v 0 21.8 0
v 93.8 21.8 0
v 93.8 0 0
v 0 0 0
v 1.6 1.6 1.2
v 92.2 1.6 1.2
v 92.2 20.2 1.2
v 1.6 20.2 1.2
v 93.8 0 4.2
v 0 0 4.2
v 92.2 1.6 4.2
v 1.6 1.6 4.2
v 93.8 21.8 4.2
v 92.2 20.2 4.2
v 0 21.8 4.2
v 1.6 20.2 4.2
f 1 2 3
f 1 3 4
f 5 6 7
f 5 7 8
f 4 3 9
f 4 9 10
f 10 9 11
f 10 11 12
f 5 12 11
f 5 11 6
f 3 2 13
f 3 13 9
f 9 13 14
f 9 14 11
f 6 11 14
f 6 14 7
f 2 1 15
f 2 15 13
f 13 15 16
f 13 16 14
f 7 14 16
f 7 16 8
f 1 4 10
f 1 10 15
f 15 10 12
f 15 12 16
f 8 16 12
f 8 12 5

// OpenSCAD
// Temporary face-down soldering alignment tray; dimensions in millimetres.
// Seven LED modules sit in one uninterrupted pocket, with their pins upward.
pocket_length = 90.6;
pocket_width = 18.6;
floor_thickness = 1.2;
wall_thickness = 1.6;
wall_height = 3.0; // Height ABOVE the floor.

assert(pocket_length > 0 && pocket_width > 0);
assert(floor_thickness > 0 && wall_thickness > 0 && wall_height > 0);

difference() {
    cube([pocket_length + 2 * wall_thickness,
          pocket_width + 2 * wall_thickness,
          floor_thickness + wall_height]);
    translate([wall_thickness, wall_thickness, floor_thickness])
        cube([pocket_length, pocket_width, wall_height + 0.1]);
}
